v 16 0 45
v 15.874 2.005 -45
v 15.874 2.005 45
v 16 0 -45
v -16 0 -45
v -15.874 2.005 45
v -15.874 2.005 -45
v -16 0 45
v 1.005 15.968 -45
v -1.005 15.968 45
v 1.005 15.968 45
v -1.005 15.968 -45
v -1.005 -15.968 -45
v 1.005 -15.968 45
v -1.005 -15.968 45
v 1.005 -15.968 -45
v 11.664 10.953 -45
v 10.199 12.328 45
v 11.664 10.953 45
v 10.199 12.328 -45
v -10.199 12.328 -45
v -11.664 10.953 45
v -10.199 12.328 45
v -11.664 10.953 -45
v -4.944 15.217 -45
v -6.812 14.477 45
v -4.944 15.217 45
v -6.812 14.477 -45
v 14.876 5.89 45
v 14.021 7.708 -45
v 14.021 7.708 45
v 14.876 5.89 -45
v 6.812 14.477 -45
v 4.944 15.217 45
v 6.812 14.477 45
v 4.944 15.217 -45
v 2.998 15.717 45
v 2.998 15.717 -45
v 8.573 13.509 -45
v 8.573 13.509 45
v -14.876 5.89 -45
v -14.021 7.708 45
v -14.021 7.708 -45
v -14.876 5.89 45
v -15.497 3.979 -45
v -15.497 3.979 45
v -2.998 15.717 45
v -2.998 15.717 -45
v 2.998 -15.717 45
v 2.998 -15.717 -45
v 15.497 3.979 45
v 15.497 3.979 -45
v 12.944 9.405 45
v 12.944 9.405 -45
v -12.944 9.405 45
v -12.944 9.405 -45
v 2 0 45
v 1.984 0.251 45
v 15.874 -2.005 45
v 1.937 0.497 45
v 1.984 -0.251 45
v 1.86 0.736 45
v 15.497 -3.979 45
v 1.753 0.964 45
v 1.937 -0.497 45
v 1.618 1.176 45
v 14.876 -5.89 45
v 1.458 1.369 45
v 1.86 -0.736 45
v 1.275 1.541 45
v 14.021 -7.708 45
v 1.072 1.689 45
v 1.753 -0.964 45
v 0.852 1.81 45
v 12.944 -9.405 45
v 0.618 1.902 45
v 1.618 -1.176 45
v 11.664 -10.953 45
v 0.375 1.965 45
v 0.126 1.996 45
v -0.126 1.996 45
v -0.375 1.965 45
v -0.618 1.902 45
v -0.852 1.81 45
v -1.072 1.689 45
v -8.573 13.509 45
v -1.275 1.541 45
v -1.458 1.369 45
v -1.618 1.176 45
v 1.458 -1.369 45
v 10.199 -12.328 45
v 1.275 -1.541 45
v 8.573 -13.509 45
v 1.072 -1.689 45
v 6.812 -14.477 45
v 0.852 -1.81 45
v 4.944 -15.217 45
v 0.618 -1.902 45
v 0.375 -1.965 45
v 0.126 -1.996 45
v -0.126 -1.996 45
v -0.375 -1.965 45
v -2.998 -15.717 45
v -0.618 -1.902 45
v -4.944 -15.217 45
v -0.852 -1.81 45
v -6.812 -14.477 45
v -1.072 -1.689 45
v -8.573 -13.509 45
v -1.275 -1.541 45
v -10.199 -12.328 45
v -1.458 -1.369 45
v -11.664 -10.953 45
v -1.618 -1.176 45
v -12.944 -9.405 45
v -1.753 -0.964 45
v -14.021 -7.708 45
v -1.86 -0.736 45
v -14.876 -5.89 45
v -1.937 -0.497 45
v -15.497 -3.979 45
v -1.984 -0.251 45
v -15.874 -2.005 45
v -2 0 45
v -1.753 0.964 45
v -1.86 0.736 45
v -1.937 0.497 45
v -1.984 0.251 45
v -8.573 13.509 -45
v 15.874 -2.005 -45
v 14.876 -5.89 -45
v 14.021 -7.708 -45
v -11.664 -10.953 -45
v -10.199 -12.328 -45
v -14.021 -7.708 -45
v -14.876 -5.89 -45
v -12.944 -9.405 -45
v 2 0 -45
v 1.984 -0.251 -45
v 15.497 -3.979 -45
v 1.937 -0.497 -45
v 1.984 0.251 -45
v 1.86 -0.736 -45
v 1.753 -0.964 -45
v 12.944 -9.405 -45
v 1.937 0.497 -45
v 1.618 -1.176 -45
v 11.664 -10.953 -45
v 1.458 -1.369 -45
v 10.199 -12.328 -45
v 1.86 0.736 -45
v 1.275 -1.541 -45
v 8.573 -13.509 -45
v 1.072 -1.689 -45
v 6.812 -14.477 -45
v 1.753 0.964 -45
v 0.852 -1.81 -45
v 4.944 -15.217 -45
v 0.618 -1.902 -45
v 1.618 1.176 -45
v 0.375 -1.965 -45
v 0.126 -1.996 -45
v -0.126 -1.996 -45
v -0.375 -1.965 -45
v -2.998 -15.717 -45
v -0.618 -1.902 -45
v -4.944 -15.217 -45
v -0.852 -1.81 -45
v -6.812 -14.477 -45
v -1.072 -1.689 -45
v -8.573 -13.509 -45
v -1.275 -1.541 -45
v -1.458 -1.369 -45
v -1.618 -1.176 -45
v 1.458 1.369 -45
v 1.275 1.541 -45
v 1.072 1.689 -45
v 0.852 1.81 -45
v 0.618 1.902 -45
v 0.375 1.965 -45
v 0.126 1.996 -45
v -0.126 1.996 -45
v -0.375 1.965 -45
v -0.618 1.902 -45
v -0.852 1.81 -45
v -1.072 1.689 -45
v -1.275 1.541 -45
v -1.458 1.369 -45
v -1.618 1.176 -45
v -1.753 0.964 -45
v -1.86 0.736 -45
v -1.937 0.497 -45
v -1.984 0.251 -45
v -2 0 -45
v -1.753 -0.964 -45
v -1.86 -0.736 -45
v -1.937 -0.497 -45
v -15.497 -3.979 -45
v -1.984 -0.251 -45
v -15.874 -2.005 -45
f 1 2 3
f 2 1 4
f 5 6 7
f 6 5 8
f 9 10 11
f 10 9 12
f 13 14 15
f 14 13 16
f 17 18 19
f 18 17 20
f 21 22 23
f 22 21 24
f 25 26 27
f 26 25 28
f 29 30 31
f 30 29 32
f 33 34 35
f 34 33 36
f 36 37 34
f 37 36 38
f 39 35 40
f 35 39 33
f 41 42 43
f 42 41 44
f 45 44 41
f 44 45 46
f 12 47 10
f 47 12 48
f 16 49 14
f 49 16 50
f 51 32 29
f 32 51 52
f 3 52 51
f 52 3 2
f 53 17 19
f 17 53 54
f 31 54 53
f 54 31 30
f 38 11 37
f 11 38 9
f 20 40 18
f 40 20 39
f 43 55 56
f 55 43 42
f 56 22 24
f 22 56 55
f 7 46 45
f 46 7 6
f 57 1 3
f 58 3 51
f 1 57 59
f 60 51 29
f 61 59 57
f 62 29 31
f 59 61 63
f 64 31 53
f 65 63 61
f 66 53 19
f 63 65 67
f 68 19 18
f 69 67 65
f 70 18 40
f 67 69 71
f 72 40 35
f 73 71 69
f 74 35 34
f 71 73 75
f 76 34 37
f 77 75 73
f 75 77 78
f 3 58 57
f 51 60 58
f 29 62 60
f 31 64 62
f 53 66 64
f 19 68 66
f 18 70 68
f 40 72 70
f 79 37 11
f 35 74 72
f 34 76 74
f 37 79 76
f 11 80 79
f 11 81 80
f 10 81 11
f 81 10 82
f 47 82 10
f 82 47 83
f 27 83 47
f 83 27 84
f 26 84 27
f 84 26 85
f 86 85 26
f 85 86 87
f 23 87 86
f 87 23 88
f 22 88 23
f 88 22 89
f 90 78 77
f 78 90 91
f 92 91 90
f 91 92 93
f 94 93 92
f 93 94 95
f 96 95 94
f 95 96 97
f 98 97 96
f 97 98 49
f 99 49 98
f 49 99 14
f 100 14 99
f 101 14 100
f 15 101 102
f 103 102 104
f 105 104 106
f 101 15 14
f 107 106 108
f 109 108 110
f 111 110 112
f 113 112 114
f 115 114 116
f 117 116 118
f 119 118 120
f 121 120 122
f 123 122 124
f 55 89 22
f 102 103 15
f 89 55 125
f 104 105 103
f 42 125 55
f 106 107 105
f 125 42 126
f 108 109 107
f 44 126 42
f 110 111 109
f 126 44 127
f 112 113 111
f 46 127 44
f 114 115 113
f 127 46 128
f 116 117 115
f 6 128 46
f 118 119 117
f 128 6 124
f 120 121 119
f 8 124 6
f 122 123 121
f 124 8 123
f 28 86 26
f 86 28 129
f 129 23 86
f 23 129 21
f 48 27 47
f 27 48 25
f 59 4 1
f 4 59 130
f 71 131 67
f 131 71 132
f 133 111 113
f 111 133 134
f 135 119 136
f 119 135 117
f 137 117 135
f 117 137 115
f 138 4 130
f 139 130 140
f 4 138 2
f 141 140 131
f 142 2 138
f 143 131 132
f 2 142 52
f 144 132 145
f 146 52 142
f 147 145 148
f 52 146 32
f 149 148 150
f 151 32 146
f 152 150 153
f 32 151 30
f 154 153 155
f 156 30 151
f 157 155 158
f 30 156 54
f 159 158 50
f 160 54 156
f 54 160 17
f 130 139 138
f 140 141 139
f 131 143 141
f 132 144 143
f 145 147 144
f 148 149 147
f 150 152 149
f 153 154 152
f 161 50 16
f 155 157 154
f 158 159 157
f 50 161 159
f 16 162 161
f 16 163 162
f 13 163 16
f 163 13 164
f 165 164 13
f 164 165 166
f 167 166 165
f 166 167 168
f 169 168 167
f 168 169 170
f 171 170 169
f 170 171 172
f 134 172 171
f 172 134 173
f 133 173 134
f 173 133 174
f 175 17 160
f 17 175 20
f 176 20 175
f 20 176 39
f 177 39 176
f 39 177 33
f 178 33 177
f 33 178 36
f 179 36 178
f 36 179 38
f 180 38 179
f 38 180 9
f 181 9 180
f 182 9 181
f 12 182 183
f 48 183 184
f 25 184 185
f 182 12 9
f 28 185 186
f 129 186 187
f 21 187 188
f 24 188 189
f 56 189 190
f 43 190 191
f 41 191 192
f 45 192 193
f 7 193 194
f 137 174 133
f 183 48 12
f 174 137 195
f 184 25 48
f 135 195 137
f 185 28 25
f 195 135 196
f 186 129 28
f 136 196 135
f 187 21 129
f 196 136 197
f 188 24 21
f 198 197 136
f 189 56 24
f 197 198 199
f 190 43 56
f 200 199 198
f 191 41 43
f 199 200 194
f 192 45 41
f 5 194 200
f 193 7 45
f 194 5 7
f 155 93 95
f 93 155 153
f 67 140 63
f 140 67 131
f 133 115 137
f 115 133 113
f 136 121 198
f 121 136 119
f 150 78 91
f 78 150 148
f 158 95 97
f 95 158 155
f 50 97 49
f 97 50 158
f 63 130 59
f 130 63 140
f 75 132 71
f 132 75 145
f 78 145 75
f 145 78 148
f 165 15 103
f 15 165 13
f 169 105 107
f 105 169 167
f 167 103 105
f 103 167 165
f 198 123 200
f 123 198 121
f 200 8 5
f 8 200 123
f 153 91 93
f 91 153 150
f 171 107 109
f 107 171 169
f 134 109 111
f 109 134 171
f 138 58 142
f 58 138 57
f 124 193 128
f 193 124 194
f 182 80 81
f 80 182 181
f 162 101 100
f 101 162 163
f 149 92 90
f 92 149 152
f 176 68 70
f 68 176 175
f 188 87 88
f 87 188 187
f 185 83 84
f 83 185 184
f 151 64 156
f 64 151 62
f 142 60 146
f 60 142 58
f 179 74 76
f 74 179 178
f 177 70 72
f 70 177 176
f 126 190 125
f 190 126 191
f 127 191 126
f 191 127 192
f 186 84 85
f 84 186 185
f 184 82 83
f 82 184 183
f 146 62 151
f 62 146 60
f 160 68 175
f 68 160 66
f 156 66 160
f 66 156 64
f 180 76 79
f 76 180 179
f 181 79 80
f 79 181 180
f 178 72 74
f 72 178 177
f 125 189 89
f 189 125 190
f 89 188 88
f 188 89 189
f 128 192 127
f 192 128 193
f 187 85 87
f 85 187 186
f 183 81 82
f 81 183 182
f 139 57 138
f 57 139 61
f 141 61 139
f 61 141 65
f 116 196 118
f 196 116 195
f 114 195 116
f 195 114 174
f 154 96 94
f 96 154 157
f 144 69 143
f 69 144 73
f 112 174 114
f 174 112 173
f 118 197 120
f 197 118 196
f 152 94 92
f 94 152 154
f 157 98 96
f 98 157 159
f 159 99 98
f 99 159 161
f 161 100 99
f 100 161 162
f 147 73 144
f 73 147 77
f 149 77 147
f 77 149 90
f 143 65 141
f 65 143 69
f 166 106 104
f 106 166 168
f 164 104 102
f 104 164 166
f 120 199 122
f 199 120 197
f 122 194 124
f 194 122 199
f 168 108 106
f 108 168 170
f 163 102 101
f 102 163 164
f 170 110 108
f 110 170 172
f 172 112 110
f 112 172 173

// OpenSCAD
$fn = 50;


difference() {
	union() {
		translate(v = [0, 0, -45.0000000000]) {
			cylinder(h = 90, r = 16.0000000000);
		}
	}
	union() {
		translate(v = [0, 0, -100.0000000000]) {
			cylinder(h = 200, r = 2);
		}
	}
}
